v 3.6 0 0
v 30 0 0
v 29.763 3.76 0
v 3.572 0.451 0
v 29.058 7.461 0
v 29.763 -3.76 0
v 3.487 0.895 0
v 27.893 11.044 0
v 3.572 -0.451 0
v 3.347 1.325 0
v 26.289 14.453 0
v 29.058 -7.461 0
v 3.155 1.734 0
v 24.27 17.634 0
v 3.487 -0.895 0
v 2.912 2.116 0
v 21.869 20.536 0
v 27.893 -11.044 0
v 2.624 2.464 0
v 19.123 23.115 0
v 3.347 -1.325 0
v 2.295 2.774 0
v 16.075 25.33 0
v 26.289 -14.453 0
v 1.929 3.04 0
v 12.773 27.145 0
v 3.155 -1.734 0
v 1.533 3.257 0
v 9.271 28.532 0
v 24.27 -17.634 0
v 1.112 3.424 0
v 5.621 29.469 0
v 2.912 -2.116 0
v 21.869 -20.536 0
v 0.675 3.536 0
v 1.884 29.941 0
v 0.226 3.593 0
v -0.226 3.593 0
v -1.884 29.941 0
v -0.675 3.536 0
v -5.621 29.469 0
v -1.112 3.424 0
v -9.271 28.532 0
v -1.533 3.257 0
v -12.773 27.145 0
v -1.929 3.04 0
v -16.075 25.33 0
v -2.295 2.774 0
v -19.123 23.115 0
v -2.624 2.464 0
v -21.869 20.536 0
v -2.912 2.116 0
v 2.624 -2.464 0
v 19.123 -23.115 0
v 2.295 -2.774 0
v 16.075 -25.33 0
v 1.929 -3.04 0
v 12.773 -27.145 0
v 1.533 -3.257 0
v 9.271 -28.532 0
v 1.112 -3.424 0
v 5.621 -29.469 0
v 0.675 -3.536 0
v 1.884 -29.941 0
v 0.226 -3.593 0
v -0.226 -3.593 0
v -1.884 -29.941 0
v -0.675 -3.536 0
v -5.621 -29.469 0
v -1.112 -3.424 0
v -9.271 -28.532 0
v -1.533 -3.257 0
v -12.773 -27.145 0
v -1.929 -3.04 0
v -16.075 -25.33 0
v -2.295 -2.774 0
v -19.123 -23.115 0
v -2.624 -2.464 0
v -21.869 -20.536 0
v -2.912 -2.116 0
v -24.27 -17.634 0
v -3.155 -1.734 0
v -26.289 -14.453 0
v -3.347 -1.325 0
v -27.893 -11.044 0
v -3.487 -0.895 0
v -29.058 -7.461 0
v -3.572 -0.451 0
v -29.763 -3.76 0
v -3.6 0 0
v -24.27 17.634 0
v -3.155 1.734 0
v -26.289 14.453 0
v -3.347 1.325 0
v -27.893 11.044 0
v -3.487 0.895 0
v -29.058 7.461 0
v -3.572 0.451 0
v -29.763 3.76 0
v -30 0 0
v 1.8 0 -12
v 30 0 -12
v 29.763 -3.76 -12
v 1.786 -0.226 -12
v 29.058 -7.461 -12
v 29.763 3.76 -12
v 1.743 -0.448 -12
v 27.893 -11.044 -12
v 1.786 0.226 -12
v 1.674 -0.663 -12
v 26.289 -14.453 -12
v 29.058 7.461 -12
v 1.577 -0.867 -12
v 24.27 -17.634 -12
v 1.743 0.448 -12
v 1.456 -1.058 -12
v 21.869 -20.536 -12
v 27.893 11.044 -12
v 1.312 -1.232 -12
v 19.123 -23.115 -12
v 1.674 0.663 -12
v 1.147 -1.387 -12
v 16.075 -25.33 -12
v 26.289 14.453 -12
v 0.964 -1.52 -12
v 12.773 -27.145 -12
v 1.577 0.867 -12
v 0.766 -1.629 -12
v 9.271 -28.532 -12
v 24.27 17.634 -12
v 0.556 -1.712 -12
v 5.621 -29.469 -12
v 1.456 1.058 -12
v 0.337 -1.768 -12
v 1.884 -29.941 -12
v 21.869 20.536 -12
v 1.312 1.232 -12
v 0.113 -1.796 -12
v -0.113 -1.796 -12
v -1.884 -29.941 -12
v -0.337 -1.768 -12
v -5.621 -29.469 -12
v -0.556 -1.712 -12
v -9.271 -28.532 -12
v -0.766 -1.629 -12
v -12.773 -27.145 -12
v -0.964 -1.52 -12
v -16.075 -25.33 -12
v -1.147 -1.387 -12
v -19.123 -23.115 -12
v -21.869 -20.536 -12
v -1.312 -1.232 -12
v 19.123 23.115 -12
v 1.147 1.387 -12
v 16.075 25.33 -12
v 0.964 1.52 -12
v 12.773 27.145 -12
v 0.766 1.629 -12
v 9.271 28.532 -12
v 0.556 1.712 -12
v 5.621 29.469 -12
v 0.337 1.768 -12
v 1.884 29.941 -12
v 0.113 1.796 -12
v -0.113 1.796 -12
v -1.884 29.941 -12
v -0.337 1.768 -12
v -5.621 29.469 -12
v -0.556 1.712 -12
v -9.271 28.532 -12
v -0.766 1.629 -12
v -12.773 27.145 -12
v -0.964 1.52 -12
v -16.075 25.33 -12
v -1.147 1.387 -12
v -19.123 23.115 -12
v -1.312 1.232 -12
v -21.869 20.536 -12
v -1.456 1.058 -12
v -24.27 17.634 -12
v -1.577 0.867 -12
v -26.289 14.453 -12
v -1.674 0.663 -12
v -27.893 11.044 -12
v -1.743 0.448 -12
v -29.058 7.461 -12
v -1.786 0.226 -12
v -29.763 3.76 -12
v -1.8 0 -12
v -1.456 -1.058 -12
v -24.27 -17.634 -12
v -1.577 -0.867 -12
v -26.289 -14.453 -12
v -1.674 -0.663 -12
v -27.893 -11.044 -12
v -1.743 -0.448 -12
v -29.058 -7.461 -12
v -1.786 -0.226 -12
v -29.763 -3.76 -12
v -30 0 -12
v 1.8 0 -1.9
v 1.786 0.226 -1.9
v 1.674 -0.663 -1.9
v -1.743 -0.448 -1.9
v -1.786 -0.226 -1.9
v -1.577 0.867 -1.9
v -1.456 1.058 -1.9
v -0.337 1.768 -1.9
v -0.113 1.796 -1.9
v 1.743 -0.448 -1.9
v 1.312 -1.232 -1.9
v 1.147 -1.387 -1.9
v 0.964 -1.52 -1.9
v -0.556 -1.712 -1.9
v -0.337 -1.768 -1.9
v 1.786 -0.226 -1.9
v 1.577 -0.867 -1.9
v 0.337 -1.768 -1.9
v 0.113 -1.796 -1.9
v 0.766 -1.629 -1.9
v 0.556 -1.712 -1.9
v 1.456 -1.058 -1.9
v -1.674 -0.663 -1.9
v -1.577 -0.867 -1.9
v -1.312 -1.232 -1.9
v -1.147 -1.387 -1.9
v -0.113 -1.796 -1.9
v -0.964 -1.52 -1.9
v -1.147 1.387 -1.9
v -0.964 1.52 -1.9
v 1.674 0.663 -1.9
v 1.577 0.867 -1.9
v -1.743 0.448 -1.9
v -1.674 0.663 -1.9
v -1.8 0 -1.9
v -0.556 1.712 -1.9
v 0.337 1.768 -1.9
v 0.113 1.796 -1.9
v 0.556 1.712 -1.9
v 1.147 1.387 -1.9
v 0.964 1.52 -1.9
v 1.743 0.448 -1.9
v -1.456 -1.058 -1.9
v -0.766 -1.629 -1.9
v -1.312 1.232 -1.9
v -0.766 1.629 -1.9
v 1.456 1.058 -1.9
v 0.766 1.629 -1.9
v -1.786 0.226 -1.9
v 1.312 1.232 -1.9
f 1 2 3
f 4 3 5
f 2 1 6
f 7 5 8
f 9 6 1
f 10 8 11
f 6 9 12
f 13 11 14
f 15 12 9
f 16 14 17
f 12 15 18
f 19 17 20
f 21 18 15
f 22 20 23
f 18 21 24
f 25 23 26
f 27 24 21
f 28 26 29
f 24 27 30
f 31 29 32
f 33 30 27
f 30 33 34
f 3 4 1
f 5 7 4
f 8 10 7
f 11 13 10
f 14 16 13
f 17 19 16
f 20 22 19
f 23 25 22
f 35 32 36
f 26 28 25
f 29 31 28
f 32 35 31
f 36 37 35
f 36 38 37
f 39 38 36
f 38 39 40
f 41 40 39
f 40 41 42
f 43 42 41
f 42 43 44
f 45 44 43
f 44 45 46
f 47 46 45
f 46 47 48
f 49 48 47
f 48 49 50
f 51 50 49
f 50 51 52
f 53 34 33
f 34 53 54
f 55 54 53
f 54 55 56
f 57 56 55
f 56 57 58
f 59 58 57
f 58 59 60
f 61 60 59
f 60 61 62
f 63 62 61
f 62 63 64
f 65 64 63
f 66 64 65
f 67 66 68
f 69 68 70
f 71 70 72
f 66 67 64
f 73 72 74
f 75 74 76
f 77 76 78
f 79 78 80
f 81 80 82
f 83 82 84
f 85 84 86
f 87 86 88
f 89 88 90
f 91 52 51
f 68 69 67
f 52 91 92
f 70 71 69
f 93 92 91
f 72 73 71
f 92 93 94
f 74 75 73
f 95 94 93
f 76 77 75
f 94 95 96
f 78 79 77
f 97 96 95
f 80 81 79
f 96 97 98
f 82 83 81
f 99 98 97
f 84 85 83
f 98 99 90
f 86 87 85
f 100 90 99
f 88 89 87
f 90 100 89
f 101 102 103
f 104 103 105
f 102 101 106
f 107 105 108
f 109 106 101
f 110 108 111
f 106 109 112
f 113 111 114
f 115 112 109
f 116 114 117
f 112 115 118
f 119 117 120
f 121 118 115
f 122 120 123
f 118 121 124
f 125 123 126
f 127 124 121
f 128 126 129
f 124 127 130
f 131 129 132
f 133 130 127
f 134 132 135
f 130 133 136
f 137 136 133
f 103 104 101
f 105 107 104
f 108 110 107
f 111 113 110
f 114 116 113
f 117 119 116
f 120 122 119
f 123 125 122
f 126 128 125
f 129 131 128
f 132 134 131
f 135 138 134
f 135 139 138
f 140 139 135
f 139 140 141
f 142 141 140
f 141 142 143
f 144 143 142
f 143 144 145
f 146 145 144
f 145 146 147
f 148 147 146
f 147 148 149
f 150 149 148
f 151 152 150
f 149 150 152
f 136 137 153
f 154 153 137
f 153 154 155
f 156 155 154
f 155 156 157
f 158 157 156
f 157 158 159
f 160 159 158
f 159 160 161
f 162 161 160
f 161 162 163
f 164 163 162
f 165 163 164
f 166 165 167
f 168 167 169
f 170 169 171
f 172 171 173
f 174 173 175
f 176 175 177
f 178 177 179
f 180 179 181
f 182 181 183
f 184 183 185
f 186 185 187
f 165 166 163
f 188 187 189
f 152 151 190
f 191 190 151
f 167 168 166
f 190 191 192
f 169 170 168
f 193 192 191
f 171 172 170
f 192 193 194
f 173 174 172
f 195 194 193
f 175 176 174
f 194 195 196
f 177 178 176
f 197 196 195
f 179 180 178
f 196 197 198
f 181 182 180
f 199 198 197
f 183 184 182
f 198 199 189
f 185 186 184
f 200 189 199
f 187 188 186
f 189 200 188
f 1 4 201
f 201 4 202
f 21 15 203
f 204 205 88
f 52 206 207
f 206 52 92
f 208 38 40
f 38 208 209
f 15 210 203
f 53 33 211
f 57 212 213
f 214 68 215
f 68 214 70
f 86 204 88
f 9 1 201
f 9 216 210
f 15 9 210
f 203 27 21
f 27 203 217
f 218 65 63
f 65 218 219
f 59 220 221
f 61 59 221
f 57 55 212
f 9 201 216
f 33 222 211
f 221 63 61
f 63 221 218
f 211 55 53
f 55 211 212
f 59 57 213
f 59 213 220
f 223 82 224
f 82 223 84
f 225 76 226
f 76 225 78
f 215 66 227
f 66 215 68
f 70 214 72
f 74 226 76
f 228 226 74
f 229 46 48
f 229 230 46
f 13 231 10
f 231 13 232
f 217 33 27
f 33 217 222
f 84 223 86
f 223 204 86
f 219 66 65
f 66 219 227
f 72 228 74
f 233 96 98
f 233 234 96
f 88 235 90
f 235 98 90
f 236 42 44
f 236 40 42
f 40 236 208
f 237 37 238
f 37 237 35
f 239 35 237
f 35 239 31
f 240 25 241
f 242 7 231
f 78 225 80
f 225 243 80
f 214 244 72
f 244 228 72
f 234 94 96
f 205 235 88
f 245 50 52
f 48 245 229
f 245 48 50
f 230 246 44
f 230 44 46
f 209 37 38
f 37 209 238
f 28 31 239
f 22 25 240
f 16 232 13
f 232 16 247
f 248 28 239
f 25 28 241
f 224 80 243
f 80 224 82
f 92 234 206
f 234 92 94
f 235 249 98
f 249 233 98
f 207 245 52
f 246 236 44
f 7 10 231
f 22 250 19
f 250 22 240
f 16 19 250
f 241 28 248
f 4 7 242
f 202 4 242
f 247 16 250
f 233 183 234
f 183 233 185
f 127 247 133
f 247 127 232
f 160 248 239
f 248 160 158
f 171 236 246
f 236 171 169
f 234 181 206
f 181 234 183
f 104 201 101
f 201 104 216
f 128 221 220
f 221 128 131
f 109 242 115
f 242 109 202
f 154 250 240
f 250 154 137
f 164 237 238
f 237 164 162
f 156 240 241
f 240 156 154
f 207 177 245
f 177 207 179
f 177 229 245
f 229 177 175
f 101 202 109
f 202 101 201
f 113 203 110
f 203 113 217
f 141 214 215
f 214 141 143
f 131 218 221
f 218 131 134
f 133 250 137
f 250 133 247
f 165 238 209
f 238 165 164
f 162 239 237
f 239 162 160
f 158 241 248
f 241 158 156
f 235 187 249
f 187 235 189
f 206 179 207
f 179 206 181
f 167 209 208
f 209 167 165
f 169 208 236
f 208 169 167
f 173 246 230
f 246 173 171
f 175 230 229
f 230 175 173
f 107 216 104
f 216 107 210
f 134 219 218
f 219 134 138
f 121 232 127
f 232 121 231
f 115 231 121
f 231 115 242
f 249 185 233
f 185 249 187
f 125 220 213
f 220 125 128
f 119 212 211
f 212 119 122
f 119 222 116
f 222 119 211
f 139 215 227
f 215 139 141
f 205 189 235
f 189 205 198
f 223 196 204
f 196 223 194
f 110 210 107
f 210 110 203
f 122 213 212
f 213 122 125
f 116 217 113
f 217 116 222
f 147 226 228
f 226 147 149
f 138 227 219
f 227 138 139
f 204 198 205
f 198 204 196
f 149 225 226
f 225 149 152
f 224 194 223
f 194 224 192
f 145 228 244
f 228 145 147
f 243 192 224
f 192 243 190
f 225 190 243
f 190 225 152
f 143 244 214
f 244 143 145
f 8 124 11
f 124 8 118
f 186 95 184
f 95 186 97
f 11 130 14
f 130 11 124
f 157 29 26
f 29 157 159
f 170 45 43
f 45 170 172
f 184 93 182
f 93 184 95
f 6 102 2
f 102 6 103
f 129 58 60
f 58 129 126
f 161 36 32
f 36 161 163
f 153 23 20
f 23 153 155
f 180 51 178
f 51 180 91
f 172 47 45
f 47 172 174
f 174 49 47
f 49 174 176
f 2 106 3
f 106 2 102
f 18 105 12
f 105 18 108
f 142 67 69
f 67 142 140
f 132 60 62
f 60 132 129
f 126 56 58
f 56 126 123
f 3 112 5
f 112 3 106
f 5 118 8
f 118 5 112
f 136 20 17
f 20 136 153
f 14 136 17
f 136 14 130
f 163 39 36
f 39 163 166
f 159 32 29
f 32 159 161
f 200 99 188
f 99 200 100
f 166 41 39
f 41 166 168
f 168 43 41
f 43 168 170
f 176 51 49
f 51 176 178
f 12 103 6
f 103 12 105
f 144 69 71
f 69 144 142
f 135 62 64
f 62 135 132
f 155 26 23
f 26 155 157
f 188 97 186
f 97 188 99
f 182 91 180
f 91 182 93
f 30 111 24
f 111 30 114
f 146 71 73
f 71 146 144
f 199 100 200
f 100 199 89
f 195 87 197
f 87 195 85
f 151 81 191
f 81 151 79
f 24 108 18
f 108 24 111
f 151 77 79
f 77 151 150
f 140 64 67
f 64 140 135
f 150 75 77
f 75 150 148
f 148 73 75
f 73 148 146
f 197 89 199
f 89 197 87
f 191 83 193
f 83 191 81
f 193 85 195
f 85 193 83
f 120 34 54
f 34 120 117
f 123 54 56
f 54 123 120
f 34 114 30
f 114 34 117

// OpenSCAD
$fn = 50;


difference() {
	union() {
		translate(v = [0, 0, -12.0000000000]) {
			cylinder(h = 12, r = 30.0000000000);
		}
	}
	union() {
		translate(v = [0, 0, 0]) {
			rotate(a = [0, 0, 0]) {
				difference() {
					union() {
						translate(v = [0, 0, -12.0000000000]) {
							cylinder(h = 12, r = 1.5000000000);
						}
						translate(v = [0, 0, -1.9000000000]) {
							cylinder(h = 1.9000000000, r1 = 1.8000000000, r2 = 3.6000000000);
						}
						translate(v = [0, 0, -12.0000000000]) {
							cylinder(h = 12, r = 1.8000000000);
						}
						translate(v = [0, 0, -12.0000000000]) {
							cylinder(h = 12, r = 1.5000000000);
						}
					}
					union();
				}
			}
		}
	}
}
